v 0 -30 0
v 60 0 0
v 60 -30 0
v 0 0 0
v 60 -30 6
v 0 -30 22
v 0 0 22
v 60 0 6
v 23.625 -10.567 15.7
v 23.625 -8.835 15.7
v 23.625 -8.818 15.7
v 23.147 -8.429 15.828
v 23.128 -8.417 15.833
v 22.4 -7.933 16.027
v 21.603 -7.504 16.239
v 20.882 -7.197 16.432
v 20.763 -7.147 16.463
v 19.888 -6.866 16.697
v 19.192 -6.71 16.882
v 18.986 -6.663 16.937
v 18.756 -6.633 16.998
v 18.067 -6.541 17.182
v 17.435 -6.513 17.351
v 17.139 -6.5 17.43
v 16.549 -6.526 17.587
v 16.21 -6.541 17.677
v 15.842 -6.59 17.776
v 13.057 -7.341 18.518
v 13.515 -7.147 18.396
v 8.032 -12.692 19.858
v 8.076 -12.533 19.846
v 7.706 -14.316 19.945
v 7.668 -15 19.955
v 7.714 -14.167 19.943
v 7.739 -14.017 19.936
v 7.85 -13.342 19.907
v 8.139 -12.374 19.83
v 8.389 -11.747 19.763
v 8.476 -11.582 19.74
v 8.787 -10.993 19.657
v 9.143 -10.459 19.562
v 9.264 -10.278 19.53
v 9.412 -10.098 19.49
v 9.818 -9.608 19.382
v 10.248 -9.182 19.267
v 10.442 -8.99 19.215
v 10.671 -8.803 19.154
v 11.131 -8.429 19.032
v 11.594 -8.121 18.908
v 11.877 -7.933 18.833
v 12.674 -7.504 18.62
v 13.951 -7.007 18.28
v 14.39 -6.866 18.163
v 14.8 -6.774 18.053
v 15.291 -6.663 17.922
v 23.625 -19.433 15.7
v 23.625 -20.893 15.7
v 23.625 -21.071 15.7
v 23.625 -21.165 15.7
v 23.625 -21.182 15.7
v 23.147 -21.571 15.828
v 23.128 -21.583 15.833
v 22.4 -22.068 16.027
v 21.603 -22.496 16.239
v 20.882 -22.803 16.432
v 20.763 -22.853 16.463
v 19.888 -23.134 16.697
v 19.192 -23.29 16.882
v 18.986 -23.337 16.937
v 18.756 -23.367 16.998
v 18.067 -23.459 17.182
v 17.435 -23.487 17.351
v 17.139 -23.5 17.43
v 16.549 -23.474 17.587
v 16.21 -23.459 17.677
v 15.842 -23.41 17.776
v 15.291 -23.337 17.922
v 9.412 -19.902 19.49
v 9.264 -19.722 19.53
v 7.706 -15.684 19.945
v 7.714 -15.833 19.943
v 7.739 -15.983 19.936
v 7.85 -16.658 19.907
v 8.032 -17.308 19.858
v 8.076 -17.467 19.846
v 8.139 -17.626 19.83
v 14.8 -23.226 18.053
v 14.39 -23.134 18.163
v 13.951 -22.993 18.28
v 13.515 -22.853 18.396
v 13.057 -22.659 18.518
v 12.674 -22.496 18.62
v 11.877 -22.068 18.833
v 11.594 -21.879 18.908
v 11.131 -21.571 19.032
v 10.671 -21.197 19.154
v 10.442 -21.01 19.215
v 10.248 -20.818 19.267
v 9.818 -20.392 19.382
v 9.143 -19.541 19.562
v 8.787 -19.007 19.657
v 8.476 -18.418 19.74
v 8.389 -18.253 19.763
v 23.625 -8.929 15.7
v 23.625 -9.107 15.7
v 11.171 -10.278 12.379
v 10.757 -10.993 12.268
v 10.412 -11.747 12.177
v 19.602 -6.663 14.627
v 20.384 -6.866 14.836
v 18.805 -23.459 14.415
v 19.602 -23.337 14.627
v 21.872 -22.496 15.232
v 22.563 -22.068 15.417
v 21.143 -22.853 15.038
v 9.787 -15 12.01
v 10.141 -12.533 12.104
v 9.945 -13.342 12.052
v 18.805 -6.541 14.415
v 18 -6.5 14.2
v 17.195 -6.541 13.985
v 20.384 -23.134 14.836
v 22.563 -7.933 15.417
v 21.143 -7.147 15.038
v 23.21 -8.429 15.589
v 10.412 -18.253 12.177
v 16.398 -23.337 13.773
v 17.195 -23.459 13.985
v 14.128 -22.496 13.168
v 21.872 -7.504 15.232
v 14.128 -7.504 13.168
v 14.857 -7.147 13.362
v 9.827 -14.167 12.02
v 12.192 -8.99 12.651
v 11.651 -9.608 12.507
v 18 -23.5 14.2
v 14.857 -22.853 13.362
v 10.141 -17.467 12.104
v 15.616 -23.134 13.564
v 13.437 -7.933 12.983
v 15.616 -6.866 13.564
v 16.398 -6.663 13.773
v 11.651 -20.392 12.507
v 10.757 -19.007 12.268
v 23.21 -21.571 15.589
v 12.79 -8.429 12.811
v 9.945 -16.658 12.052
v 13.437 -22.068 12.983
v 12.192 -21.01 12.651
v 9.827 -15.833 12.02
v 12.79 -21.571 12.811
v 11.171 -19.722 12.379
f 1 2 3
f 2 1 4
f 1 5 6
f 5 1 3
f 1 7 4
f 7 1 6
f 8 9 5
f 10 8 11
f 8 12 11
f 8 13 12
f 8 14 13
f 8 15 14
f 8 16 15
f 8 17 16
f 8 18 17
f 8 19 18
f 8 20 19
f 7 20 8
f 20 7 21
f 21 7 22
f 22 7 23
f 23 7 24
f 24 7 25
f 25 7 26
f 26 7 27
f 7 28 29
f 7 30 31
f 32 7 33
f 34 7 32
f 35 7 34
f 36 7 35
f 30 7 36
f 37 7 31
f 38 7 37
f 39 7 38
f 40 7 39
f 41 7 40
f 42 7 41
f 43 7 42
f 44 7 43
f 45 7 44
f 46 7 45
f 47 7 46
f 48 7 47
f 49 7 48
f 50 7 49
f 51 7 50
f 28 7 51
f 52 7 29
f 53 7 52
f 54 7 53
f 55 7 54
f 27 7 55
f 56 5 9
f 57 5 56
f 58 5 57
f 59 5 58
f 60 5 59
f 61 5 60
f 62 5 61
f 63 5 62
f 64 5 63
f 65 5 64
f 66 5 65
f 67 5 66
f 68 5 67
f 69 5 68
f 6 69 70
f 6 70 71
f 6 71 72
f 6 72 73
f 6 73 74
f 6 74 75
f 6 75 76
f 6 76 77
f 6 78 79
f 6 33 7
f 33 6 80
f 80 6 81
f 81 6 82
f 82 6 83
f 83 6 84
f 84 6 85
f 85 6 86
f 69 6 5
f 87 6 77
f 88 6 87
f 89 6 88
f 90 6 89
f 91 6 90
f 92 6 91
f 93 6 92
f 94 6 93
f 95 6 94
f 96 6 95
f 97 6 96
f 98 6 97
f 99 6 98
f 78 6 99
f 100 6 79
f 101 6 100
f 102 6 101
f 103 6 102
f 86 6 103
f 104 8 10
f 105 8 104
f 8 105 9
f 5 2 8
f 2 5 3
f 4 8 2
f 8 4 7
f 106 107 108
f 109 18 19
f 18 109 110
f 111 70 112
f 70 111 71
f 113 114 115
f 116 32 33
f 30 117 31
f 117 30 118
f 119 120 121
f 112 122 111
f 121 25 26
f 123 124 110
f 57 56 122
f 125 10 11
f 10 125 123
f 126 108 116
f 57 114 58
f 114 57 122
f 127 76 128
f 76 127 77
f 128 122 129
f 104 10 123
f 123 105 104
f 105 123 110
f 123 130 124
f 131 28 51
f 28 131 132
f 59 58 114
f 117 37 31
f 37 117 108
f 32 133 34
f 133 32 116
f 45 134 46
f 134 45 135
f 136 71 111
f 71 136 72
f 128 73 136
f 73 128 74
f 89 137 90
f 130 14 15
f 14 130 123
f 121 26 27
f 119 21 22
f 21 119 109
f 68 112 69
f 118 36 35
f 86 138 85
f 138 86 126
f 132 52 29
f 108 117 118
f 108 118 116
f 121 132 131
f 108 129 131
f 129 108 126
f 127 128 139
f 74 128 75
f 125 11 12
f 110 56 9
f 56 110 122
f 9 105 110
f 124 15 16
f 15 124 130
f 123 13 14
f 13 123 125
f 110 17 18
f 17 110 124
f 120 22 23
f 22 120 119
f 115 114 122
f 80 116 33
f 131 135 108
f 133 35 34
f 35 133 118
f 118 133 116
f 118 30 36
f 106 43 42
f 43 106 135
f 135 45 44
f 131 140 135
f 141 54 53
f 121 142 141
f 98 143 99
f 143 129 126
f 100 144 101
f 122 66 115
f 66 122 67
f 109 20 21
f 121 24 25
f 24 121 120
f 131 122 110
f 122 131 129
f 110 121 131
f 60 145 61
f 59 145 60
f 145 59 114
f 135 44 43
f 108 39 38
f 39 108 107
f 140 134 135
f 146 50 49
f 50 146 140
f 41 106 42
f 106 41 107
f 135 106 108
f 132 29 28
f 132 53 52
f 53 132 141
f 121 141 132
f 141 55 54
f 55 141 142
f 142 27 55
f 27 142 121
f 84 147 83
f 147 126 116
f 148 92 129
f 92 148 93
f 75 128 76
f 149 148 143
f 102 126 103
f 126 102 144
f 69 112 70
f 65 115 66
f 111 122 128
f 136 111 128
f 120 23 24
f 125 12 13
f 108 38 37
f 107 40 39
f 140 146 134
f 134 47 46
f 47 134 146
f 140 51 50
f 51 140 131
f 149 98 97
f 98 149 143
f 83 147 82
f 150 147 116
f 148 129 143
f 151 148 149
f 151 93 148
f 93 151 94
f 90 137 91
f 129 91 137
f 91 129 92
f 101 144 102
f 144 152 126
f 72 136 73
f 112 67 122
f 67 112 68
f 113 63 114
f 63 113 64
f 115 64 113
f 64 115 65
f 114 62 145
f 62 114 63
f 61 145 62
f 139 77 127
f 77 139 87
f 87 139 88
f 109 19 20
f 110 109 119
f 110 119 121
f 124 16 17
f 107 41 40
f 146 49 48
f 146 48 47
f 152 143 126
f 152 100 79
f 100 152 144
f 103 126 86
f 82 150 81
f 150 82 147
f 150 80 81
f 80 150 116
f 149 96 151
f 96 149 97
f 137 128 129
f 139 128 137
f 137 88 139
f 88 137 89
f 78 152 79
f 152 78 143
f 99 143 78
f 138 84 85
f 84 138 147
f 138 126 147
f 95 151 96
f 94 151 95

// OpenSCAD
// Desk rig tilt wedge (e.g. IC-7300 or a mobile rig on a desk): raises the front. CC0.
// Print two; set foot_d to your rig's rubber foot so it sits in the pocket.
len = 60; wid = 30; low = 6; high = 22; foot_d = 16; foot_h = 3;
$fn = 64;
difference() {
  rotate([90, 0, 0]) linear_extrude(wid) polygon([[0, 0], [len, 0], [len, low], [0, high]]);
  translate([len * 0.3, -wid / 2, high - (high - low) * 0.3 - foot_h]) rotate([0, -atan((high - low) / len), 0]) cylinder(d = foot_d + 1, h = 10);
}
